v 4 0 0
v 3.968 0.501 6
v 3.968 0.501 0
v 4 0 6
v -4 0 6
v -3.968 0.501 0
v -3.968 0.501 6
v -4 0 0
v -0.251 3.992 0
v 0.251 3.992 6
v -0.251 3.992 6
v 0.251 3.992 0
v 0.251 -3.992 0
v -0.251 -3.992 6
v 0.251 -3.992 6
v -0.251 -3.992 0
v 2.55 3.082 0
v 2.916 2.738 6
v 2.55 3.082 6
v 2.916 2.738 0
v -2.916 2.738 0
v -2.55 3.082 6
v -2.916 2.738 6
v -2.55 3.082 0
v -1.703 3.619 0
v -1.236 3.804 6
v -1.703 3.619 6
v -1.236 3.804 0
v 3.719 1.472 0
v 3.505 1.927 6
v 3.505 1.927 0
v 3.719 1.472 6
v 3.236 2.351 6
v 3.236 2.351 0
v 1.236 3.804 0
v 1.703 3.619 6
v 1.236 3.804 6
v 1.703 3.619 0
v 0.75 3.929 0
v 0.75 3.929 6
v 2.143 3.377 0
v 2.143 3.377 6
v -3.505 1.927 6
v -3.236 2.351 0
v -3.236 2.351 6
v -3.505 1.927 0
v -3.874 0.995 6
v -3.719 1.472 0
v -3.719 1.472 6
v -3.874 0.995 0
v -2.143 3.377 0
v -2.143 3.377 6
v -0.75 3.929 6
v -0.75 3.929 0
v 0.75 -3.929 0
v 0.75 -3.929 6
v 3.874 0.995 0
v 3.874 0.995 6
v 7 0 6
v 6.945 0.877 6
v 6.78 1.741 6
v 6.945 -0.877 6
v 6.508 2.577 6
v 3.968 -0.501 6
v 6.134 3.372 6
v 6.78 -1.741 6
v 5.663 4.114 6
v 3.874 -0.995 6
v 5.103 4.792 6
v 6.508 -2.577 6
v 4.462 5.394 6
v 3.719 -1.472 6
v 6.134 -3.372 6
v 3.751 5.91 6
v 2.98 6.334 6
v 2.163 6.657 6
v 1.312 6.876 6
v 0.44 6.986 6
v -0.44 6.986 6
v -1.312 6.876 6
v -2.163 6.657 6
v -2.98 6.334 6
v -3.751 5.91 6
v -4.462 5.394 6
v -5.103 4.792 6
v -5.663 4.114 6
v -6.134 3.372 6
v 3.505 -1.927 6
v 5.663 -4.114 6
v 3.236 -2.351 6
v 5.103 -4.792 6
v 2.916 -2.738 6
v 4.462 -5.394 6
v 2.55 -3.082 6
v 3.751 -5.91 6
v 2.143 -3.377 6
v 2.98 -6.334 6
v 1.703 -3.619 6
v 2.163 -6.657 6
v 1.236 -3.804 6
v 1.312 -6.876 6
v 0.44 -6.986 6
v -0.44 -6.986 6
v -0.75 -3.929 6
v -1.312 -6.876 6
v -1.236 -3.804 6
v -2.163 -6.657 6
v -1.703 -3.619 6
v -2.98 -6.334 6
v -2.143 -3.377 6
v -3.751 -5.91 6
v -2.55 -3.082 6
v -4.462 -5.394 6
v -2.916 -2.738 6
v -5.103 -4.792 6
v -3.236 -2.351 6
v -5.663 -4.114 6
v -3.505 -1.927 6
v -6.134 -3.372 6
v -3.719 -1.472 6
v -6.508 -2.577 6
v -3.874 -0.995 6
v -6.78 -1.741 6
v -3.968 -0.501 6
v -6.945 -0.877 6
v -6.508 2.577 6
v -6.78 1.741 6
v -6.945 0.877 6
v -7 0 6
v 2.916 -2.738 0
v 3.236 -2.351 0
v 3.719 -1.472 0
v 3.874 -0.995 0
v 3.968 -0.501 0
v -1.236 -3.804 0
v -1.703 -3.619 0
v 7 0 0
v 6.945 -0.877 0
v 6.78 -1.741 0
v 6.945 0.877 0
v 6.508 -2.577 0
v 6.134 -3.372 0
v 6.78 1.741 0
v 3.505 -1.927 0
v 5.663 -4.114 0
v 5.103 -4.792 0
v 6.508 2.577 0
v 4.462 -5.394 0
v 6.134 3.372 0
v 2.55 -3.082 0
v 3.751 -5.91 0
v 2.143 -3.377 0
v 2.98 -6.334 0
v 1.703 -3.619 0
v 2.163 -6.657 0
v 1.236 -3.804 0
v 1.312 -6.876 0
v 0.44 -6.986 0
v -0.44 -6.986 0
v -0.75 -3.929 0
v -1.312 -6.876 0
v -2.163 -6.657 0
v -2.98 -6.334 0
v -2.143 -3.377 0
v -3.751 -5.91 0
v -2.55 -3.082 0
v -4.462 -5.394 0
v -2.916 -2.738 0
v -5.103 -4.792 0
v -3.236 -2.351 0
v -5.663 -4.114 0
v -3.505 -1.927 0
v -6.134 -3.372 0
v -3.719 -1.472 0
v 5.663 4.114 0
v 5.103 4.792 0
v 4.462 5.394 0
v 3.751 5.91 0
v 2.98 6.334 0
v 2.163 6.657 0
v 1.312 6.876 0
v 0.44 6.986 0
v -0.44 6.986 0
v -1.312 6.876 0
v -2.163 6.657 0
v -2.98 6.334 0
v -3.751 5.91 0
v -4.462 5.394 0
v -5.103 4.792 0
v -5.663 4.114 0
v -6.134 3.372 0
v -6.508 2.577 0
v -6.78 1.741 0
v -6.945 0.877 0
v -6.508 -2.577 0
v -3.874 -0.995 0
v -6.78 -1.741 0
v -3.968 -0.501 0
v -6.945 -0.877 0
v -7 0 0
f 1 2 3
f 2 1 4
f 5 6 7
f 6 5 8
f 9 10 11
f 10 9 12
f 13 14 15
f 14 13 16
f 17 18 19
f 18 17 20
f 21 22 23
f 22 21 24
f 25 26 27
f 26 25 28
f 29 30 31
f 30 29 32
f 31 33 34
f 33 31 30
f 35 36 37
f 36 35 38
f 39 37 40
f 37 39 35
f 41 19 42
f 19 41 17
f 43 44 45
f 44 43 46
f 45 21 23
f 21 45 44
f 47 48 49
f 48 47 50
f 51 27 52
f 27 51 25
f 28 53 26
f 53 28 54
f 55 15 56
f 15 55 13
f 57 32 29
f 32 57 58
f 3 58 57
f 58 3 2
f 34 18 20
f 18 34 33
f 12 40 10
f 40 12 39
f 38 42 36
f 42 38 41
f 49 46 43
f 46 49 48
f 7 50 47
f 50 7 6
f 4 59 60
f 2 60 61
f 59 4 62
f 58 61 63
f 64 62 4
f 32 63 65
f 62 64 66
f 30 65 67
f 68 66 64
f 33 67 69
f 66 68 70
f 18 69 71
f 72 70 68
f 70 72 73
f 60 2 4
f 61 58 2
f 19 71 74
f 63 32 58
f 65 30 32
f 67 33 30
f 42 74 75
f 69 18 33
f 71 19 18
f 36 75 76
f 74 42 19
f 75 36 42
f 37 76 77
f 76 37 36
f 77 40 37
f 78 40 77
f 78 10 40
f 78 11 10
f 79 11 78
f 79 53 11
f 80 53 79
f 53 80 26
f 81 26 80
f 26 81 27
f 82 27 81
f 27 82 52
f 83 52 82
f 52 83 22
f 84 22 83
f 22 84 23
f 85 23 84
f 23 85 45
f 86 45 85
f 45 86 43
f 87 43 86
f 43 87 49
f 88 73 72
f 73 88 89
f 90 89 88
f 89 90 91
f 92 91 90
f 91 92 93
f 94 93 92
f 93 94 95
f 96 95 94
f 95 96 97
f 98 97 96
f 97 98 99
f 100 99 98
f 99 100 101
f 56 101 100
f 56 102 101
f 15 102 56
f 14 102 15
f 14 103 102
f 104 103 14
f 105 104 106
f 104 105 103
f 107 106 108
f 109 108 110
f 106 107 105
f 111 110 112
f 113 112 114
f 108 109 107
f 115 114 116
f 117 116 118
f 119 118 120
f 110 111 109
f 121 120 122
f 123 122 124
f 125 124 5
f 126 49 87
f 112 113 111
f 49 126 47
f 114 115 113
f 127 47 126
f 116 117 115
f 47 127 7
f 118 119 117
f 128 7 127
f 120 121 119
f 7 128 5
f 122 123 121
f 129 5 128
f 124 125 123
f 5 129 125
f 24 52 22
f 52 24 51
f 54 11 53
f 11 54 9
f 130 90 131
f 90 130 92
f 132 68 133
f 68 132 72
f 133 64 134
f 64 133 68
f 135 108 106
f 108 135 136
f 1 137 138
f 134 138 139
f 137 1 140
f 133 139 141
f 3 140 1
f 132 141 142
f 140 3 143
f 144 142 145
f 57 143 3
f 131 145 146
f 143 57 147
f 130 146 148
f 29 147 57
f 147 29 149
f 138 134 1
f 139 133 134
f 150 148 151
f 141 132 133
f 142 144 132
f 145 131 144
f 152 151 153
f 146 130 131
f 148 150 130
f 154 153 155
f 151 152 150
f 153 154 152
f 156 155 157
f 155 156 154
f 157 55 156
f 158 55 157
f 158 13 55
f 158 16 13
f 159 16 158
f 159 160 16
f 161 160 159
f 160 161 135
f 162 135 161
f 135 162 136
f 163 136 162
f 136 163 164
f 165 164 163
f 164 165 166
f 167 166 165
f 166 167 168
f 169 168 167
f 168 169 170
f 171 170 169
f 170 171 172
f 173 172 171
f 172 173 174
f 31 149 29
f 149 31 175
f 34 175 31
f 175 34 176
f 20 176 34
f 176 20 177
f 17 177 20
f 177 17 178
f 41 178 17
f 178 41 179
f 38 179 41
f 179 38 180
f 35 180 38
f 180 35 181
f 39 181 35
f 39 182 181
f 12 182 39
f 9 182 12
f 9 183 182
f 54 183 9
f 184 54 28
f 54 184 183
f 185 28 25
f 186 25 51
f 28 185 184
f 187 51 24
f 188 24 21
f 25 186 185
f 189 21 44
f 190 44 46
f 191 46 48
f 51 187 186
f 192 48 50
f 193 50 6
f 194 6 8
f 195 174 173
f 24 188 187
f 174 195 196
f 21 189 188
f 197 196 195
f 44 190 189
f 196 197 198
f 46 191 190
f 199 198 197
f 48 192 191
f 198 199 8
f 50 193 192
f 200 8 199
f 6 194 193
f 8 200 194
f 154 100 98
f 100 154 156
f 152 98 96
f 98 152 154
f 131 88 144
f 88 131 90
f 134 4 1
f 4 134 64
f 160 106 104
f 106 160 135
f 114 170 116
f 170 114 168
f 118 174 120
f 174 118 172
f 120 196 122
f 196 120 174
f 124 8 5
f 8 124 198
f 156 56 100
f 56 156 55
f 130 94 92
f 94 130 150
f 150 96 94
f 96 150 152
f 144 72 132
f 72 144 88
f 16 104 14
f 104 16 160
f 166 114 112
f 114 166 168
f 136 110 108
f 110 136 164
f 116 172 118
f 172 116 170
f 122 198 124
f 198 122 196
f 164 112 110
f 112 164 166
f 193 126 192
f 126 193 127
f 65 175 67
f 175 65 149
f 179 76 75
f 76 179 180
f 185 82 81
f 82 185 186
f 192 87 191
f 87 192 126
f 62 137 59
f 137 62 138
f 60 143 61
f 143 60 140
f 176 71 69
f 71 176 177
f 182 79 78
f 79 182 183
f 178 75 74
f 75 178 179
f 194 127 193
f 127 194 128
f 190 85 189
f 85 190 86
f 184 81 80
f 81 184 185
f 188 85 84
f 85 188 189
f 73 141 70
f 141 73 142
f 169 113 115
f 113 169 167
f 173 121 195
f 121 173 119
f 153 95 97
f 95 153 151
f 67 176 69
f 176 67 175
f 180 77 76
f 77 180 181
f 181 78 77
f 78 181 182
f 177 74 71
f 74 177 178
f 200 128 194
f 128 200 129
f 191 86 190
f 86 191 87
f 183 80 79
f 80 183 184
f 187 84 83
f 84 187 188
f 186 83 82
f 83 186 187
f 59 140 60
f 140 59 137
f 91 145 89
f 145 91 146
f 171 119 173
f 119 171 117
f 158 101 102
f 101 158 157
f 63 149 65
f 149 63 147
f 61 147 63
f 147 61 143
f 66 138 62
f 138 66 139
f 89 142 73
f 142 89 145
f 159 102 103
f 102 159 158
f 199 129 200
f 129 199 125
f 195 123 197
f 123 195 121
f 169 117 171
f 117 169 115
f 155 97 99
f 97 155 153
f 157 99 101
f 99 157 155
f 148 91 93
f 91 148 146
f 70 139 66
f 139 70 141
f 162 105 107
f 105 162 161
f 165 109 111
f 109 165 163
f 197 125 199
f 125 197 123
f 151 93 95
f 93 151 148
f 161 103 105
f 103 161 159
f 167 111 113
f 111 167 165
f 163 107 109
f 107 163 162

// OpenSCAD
$fn = 50;


difference() {
	union() {
		cylinder(h = 6, r = 7.0000000000);
	}
	union() {
		#translate(v = [0.0000000000, 0.0000000000, -100.0000000000]) {
			cylinder(h = 200, r = 3.2500000000);
		}
		#translate(v = [0.0000000000, 0.0000000000, -100.0000000000]) {
			cylinder(h = 200, r = 3.2500000000);
		}
		#translate(v = [0.0000000000, 0.0000000000, -100.0000000000]) {
			cylinder(h = 200, r = 3.2500000000);
		}
		#translate(v = [0.0000000000, 0.0000000000, -100.0000000000]) {
			cylinder(h = 200, r = 3.2500000000);
		}
		#cylinder(h = 6, r = 4.0000000000);
	}
}
